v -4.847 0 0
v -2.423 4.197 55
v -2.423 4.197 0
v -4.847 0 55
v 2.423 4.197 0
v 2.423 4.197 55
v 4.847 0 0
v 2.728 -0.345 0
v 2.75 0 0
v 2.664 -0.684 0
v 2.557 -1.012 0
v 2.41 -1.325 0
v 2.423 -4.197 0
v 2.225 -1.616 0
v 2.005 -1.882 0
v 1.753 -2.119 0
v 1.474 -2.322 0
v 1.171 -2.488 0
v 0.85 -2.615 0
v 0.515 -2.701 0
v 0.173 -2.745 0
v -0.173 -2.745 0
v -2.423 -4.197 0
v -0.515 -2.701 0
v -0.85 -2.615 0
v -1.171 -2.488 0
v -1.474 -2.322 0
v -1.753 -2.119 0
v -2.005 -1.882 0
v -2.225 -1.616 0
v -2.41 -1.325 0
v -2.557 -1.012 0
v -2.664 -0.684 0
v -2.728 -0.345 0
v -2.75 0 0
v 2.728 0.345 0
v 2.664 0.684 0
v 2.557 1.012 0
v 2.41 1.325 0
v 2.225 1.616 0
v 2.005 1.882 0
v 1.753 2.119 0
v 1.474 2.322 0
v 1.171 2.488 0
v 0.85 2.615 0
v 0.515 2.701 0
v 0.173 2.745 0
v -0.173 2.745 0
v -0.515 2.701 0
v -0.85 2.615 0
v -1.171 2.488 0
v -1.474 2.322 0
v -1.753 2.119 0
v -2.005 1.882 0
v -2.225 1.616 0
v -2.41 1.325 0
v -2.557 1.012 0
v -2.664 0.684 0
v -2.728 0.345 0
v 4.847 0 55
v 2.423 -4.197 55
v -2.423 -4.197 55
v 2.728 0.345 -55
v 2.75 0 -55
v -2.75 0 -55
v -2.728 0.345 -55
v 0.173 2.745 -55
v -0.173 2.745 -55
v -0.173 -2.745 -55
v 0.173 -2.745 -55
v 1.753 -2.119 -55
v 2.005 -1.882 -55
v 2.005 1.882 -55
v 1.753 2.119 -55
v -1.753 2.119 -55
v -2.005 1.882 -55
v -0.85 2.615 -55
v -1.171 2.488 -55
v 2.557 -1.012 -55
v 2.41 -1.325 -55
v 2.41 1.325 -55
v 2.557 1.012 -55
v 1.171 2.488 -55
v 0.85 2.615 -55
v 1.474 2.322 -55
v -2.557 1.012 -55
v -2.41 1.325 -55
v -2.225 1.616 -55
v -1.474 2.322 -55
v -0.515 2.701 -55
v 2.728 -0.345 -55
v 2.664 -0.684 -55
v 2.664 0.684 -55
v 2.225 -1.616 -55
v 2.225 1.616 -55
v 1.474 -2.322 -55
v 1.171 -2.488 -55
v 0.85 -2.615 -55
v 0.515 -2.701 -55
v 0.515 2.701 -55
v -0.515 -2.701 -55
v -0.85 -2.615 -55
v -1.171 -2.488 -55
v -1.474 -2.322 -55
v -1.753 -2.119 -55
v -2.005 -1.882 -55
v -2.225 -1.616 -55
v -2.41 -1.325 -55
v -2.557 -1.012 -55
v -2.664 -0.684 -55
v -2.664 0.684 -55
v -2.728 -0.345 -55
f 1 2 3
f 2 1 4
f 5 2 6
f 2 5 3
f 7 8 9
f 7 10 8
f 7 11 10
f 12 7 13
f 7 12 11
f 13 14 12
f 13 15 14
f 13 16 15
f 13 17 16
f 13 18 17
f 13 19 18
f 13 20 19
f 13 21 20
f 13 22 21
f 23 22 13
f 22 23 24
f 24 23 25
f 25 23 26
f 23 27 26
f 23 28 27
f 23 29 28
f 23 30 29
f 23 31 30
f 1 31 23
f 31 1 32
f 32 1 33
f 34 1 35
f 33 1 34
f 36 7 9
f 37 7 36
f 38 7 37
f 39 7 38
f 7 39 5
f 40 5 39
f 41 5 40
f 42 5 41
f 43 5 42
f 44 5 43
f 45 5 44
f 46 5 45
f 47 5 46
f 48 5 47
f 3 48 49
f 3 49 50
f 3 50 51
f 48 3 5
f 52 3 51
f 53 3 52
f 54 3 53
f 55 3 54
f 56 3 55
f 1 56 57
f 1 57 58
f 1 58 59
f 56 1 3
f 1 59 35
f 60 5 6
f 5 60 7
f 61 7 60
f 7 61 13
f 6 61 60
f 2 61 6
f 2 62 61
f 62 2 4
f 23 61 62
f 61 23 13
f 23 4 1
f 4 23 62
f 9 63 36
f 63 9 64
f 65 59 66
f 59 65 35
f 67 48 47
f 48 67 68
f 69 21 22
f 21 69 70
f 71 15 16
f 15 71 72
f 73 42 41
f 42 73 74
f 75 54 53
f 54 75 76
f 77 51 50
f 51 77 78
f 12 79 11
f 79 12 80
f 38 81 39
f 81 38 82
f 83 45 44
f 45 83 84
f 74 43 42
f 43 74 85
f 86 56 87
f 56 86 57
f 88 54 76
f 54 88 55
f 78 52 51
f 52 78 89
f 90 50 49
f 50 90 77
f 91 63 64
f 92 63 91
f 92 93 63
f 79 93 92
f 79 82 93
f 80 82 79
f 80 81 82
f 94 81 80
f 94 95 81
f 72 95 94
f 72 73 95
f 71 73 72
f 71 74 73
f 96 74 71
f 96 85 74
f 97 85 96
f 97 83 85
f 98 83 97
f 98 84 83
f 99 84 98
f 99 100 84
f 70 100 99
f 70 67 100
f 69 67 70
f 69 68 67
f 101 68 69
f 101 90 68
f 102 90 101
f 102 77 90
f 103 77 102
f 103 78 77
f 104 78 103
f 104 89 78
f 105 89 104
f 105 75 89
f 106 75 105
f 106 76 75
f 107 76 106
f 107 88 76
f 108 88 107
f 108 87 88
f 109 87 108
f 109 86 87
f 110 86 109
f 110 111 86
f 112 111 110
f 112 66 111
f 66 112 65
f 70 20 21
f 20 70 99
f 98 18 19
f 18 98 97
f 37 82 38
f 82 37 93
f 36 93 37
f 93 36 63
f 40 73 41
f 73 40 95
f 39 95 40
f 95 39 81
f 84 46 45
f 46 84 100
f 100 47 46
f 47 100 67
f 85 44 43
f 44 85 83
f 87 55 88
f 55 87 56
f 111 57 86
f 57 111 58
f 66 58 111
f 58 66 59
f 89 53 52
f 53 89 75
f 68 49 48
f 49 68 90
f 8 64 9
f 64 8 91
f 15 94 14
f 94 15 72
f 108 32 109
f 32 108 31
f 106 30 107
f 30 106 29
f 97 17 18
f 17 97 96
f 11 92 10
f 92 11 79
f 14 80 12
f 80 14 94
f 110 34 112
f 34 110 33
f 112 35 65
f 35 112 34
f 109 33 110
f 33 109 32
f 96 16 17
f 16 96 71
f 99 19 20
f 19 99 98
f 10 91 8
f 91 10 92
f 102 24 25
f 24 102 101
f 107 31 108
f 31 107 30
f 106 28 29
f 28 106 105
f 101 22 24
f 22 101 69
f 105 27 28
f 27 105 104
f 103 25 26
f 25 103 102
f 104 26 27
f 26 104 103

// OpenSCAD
$fn = 50;


difference() {
	union() {
		translate(v = [0, 0, 0]) {
			rotate(a = [0, 0, 0]) {
				translate(v = [0, 0, 0]) {
					rotate(a = [0, 0, 0]) {
						linear_extrude(height = 55) {
							polygon(points = [[4.8468000000, 0.0000000000], [2.4234000000, 4.1974519271], [-2.4234000000, 4.1974519271], [-4.8468000000, 0.0000000000], [-2.4234000000, -4.1974519271], [2.4234000000, -4.1974519271]]);
						}
					}
				}
			}
		}
		translate(v = [0, 0, -55]) {
			rotate(a = [0, 0, 0]) {
				cylinder(h = 55, r = 2.7500000000);
			}
		}
	}
	union();
}
